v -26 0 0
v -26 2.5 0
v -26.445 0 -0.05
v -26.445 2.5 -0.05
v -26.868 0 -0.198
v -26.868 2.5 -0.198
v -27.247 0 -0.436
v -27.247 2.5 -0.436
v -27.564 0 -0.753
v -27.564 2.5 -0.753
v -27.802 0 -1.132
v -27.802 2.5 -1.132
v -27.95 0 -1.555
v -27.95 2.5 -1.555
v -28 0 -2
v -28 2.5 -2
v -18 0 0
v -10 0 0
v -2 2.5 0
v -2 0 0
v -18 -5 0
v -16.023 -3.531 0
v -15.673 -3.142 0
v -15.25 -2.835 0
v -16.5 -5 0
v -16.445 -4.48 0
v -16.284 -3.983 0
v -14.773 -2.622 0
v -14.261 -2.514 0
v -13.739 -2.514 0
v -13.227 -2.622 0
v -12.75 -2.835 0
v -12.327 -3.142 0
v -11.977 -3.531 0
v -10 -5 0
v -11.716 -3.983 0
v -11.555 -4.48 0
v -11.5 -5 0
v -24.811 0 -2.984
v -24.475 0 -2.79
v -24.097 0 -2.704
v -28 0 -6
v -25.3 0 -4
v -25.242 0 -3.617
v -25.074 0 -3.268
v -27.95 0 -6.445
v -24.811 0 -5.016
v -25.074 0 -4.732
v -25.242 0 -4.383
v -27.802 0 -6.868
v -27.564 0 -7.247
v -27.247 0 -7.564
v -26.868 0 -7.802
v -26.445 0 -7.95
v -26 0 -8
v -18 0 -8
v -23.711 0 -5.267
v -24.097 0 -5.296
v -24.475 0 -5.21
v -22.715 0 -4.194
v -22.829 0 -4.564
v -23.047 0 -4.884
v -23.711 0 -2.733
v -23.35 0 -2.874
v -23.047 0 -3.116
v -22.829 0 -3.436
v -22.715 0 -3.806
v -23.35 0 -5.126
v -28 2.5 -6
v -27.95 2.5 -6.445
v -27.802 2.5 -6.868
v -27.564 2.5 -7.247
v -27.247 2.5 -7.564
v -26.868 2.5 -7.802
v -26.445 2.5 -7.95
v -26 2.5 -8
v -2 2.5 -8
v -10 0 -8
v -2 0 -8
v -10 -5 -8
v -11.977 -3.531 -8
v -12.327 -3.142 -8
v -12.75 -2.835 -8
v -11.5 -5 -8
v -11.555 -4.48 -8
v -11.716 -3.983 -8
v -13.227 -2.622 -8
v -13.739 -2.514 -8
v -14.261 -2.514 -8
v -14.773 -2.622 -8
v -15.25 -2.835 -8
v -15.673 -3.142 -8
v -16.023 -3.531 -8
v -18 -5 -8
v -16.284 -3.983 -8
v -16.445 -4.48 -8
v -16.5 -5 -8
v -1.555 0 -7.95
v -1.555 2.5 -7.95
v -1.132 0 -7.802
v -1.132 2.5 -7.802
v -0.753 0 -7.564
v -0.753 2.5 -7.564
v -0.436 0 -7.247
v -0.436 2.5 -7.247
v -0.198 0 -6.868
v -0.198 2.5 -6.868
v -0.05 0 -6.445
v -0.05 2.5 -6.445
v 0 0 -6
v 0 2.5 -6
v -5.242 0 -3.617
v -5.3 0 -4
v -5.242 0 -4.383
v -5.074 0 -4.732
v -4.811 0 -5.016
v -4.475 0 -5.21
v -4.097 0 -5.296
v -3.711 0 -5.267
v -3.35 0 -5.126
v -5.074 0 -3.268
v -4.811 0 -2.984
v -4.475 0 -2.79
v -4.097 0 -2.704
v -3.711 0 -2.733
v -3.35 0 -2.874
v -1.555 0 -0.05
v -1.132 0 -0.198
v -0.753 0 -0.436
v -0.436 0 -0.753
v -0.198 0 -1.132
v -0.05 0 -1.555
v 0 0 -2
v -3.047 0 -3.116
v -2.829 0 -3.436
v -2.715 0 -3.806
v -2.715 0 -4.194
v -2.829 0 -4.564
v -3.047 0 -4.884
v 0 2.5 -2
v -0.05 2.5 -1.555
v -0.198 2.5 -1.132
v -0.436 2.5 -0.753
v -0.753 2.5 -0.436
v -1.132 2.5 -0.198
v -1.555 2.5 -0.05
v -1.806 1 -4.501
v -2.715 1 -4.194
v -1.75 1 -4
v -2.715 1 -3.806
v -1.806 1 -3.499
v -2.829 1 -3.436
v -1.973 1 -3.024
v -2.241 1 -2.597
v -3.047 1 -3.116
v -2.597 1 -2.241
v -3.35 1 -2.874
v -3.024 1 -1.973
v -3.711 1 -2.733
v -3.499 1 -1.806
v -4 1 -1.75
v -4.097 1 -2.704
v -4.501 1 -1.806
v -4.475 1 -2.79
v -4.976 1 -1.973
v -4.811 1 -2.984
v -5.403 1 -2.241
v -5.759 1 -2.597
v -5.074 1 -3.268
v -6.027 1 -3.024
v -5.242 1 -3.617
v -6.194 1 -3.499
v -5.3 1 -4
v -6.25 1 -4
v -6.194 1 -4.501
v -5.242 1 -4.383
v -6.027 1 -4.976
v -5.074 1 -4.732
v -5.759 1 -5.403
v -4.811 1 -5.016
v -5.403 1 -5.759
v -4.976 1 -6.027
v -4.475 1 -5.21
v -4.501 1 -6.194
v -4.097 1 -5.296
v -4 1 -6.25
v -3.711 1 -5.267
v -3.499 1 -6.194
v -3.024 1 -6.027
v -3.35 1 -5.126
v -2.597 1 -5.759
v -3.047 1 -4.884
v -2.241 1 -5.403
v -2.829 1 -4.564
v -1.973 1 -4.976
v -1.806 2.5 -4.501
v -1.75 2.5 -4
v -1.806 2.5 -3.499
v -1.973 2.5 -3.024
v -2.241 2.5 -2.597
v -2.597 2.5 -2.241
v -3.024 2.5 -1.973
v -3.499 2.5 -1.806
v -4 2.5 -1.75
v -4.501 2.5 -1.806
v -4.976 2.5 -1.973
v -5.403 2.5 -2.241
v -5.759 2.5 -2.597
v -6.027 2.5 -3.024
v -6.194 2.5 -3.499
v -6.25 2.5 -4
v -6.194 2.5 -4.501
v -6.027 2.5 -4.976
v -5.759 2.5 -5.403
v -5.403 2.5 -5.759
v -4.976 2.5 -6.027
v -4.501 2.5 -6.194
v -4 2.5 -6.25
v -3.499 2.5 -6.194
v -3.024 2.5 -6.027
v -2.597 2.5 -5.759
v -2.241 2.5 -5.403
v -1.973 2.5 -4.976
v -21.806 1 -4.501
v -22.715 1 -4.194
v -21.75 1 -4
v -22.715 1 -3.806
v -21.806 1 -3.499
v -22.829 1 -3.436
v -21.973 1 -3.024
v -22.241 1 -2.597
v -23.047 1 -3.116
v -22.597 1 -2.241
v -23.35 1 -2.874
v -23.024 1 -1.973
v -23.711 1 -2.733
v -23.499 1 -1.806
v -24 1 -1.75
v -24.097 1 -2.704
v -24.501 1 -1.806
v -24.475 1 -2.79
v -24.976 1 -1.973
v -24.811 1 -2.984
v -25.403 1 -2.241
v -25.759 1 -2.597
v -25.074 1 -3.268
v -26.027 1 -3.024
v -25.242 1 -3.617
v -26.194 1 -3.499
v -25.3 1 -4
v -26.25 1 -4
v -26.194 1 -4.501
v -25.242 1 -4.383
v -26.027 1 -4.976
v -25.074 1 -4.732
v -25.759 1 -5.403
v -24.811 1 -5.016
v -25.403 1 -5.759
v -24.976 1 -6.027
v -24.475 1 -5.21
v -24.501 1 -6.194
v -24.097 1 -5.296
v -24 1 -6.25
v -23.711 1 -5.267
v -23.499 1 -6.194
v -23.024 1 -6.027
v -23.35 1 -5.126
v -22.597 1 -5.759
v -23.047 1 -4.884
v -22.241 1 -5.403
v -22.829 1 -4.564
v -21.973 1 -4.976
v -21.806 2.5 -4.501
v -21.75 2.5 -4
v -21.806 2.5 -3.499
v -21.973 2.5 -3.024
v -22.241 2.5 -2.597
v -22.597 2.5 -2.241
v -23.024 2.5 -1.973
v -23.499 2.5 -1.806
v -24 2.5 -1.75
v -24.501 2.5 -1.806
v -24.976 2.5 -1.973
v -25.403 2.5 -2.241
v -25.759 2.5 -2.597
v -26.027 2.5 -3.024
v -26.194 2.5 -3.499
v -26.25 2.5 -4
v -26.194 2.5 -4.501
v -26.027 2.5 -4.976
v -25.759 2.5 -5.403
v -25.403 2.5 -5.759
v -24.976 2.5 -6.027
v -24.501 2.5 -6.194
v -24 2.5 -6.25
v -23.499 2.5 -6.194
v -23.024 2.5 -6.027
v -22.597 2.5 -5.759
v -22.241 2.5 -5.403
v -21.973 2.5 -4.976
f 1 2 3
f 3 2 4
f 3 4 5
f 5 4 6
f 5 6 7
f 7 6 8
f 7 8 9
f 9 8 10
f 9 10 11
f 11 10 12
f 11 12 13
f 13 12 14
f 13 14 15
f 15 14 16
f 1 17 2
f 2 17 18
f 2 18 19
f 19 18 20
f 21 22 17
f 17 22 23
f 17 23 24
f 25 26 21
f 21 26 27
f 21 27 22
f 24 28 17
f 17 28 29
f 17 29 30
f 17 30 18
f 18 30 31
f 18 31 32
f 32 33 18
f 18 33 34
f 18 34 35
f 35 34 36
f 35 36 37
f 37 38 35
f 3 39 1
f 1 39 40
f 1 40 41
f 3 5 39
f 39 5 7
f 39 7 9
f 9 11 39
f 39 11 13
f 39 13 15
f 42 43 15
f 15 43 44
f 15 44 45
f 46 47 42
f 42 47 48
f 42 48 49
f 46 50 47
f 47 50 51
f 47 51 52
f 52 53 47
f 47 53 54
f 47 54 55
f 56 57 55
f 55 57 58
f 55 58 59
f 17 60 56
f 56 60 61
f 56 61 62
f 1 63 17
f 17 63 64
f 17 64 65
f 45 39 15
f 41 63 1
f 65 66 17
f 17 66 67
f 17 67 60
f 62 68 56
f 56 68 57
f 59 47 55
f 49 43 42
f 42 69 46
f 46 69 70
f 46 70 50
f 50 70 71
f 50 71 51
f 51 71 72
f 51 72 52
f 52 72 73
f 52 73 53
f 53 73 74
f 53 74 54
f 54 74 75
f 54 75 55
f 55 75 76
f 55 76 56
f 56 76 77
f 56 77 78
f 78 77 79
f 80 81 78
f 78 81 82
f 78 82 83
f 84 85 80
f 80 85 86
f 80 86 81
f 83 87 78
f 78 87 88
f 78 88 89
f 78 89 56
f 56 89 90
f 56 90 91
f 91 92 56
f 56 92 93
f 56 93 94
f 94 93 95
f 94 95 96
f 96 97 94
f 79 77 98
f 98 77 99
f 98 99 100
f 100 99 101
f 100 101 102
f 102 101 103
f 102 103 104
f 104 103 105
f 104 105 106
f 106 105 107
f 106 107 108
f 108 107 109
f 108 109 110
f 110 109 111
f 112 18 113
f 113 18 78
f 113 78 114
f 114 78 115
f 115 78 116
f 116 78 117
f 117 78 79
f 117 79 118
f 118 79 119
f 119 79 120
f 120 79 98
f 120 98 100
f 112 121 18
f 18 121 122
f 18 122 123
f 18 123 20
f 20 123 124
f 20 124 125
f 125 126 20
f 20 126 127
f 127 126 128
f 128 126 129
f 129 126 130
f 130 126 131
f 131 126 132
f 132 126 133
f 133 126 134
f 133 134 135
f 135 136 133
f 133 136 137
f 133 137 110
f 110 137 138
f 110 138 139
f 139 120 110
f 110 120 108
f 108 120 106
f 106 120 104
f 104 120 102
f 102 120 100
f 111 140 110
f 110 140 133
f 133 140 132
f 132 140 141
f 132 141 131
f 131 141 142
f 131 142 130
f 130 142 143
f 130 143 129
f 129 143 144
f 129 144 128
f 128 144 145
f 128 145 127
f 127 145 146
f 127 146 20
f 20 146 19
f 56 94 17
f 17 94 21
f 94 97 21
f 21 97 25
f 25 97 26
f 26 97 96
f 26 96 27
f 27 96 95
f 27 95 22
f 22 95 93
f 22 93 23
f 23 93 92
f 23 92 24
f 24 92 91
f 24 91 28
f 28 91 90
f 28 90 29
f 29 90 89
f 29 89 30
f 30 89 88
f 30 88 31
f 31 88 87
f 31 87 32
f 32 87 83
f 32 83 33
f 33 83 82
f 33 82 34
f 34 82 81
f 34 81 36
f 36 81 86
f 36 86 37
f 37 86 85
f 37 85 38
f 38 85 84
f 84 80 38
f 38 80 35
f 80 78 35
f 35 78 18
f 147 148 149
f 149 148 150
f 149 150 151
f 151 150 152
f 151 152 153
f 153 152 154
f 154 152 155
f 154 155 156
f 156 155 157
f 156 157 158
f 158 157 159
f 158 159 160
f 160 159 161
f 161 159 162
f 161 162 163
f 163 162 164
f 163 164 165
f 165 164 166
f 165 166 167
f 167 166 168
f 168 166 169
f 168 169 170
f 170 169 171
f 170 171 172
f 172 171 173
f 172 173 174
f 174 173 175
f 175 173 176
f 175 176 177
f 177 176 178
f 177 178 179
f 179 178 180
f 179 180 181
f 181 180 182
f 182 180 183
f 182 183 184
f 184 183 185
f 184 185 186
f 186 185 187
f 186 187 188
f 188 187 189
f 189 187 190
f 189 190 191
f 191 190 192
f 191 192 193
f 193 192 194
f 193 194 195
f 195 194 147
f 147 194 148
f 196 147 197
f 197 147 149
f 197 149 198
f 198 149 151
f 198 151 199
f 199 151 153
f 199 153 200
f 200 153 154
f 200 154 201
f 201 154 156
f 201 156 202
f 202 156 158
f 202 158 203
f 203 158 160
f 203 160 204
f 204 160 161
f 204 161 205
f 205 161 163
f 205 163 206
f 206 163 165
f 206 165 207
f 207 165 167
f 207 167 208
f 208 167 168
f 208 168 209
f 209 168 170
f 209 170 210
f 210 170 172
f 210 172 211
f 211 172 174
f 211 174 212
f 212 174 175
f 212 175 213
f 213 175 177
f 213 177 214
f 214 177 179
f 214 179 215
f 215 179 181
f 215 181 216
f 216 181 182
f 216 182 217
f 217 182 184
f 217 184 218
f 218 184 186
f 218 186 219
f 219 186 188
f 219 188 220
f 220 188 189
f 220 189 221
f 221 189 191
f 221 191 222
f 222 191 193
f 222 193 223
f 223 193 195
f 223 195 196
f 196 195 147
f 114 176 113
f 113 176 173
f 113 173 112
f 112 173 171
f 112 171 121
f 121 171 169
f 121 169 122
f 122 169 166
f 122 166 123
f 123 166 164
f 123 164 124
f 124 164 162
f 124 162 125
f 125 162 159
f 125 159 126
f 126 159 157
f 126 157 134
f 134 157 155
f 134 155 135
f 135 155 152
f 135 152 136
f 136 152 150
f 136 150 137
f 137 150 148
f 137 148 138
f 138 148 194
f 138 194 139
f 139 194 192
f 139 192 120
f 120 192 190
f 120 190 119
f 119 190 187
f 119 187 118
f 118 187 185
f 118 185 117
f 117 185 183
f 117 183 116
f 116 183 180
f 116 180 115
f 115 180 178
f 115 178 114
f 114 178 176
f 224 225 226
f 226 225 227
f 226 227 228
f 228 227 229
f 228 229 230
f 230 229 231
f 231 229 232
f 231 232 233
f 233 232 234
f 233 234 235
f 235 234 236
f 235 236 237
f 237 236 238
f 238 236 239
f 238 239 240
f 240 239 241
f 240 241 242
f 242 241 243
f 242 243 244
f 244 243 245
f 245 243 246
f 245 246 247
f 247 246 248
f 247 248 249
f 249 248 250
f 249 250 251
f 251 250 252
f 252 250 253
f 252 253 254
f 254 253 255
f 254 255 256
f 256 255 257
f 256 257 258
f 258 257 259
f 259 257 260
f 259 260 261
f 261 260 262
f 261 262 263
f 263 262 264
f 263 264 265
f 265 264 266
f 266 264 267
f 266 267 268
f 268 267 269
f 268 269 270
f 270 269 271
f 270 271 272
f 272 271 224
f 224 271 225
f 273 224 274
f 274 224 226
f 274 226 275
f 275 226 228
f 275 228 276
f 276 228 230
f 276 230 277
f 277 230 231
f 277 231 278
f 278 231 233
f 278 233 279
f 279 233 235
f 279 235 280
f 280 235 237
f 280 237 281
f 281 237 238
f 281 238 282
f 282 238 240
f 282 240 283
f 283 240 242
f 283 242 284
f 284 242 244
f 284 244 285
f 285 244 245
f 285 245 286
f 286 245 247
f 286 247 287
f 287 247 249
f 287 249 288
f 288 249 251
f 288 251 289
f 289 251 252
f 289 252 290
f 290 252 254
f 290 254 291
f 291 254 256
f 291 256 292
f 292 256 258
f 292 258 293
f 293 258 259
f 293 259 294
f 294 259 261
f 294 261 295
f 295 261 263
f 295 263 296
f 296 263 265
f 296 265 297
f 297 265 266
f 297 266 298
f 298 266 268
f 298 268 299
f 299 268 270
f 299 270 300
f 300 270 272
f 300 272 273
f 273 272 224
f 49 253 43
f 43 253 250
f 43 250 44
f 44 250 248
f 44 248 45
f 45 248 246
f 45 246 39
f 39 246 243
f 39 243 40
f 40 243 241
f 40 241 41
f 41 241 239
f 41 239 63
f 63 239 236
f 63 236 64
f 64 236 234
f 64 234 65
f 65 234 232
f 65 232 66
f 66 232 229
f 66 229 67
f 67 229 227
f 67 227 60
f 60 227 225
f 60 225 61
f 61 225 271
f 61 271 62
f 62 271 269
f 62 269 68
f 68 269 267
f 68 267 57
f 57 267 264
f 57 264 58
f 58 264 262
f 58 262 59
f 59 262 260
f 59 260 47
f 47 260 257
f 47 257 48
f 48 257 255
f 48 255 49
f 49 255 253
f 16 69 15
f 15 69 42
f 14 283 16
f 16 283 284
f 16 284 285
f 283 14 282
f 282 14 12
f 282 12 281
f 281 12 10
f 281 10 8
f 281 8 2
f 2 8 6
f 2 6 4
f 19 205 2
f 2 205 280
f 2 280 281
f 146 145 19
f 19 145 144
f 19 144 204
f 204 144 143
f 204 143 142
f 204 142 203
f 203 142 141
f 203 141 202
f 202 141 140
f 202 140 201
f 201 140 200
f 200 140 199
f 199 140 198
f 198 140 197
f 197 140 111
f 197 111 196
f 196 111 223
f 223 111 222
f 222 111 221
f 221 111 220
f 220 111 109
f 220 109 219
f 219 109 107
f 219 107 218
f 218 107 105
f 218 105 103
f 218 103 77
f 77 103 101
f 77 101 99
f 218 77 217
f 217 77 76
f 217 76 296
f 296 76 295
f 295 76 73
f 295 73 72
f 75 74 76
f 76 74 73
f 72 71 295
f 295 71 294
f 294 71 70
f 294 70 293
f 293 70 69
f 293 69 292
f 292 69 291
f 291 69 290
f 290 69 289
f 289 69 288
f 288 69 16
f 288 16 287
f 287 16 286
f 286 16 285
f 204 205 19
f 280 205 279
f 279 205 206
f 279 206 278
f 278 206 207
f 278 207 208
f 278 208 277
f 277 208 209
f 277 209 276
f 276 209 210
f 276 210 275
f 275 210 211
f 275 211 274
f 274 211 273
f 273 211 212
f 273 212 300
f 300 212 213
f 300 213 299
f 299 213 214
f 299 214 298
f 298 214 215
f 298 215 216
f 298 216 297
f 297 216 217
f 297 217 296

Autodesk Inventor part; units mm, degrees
ref_plane "YZ Plane" through (0, 0, 0) normal (1, 0, 0) x (0, 1, 0)
ref_plane "XZ Plane" through (0, 0, 0) normal (0, 1, 0) x (-1, 0, 0)
ref_plane "XY Plane" through (0, 0, 0) normal (0, 0, 1) x (1, 0, 0)
sketch "Szkic1" plane through (0, 0, 0) normal (0, 1, 0) x (-1, 0, 0)
  line L0 (28, 0) -> (0, 0)
  line L1 (0, 0) -> (0, -8)
  line L2 (0, -8) -> (28, -8)
  line L3 (28, -8) -> (28, 0)
  dimension "d0" = 8
  dimension "d4" = 28
extrude "Wyciągnięcie proste1" add sketch "Szkic1" along normal blind 2.5
sketch "Szkic2" plane through (0, 2.5, 0) normal (0, 1, 0) x (1, 0, 0)
  line L0 (-28, 0) -> (0, 0) projected
  line L1 (0, 8) -> (-28, 8) projected
  line L2 (-14, 0) -> (-14, 8)
  line L3 (-24, 4) -> (-4, 4)
  point P0 (-14, 4)
  dimension "d3" = 20
hole "Otwór1" at (-24, 2.5, -4) at (-4, 2.5, -4) direction (0, -1, 0) diameter 2.6 end through all counterbore diameter 4.5 counterbore depth 1.5
sketch "Szkic3" plane through (-28, 0, 0) normal (0, 0, 1) x (1, 0, 0)
  line L0 (14, 2.5) -> (14, 0)
  line L1 (0, 2.5) -> (28, 2.5) projected
  line L2 (0, 0) -> (28, 0) projected
  circle A0 centre (14, -5) radius 2.5
  line L3 (10, -5) -> (18, -5)
  line L4 (18, -5) -> (18, 0)
  line L5 (10, 0) -> (10, -5)
  line L6 (18, 0) -> (10, 0)
  point P0 (10, 3)
  point P1 (17.6174, 3)
  point P2 (16.5, -5)
  point P3 (11.5, -5)
  point P4 (14, 0)
  point P5 (18, 0)
  dimension "d12" = 5
  dimension "d13" = 8
  dimension "d17" = 5
extrude "Wyciągnięcie proste2" add sketch "Szkic3" against normal up to surface (8 mm away) contours L2 L4 L3 A0 L5
fillet "Zaokrąglenie1" radius 2 4 edges at (0, 1.25, 0) (0, 1.25, -8) (-28, 1.25, -8) (-28, 1.25, 0)
equation "\"d0\" = obudowa_led_mocowanie_grubosc"
equation "\"d4\" = holder_led_dlugosc"
equation "\"d1\" = holder_led_grubosc"
equation "\"d3\" = obudowa_led_mocowanie_rozstaw_otworow"
equation "\"d5\" = gniazdo_M2_D2"
equation "\"d7\" = gniazdo_M2_D1"
equation "\"d8\" = gniazdo_M2_glebokosc"
equation "\"d10\" = insert_glebokosc"
equation "\"d12\" = holder_led_uchwyt_D"
equation "\"d13\" = holder_led_uchwyt_szerokosc"
equation "\"d17\" = holder_led_uchwyt_wysokosc"
equation "\"gniazdo_M2_glebokosc\" = 1.5"
equation "\"gniazdo_M2_D1\" = 4.5"
equation "\"gniazdo_M2_D2\" = 2.6"
equation "\"insert_D\" = 2.9"
equation "\"insert_glebokosc\" = 7"
equation "\"podstawa_wys\" = 2"
equation "\"podstawa_otwory_montazowe_poz_x\" = 4"
equation "\"podstawa_otwory_montazowe_poz_y\" = 4"
equation "\"podstawa_zaokraglenie\" = 3"
equation "\"obudowa_wys\" = 45"
equation "\"obudowa_grubosc\" = 2"
equation "\"obudowa_kontrolki_a\" = 38"
equation "\"obudowa_otwory_montazowe_poz_x\" = 4"
equation "\"obudowa_otwory_montazowe_poz_y\" = 4"
equation "\"obudowa_otwory_montazowe_material_x\" = 8"
equation "\"obudowa_otwory_montazowe_material_y\" = 8"
equation "\"obudowa_zaokraglenie\" = 3"
equation "\"obudowa_otwory_io1_D\" = 12"
equation "\"obudowa_otwory_io1_wys\" = 25"
equation "\"obudowa_otwory_io1_poz\" = 55"
equation "\"obudowa_otwory_io2_D\" = 12"
equation "\"obudowa_otwory_io2_wys\" = 25"
equation "\"obudowa_otwory_io2_poz\" = 38"
equation "\"obudowa_otwory_pot_D\" = 7.2"
equation "\"obudowa_pot_poz_y\" = 15"
equation "\"obudowa_s_rozstaw_y\" = 16"
equation "\"obudowa_s_poz_x\" = 78"
equation "\"obudowa_s_poz_y\" = 15"
equation "\"obudowa_s_D\" = 6.2"
equation "\"input_a\" = 8.9"
equation "\"input_b\" = 14.4"
equation "\"input_wys\" = 10.9"
equation "\"obudowa_MTS_otwor_D\" = 6.2"
equation "\"pcb_rozstaw_x\" = 92"
equation "\"pcb_rozstaw_y\" = 58"
equation "\"pcb_grubosc_scianki\" = 6"
equation "\"pcb_wys_bloku\" = 35"
equation "\"pcb_poz_y\" = 29"
equation "\"obudowa_footswitch_D\" = 12.3"
equation "\"obudowa_footswitch_poz_x\" = 35"
equation "\"obudowa_footswitch_poz_y\" = 68"
equation "\"obudowa_led_indicator_D\" = 3.5"
equation "\"obudowa_led_indicator_poz_x\" = 55"
equation "\"obudowa_podkladka_otwory\" = 4"
equation "\"obudowa_uchwyt_poz_z\" = 3"
equation "\"obudowa_uchwyt_grubosc\" = 2"
equation "\"obudowa_uchwyt_szerokosc_wew\" = 17.5"
equation "\"obudowa_uchwyt_wysokosc_wew\" = 26.3"
equation "\"obudowa_uchwyt_kolnierz_wys\" = 55"
equation "\"obudowa_gniazdo_poz\" = 25"
equation "\"obudowa_podciecie_inout_wys\" = 6"
equation "\"obudowa_podciecie_logo_wys\" = 34"
equation "\"obudowa_podciecie_logo_szerokosc\" = 25"
equation "\"obudowa_pot_pozycjonowanie_szerokosc\" = 2.8"
equation "\"obudowa_pot_pozycjonowanie_wys\" = 13"
equation "\"obudowa_pot_pozycjonowanie_glebokosc\" = 1.4"
equation "\"obudowa_led_mocowanie_wys\" = 6"
equation "\"obudowa_led_mocowanie_grubosc\" = 8"
equation "\"obudowa_led_mocowanie_rozstaw_otworow\" = 20"
equation "\"holder_led_grubosc\" = 2.5"
equation "\"holder_led_dlugosc\" = 28"
equation "\"holder_led_uchwyt_D\" = 5"
equation "\"holder_led_uchwyt_wysokosc\" = 5"
equation "\"holder_led_uchwyt_szerokosc\" = 8"
equation "\"holder_gniazdo_b\" = 5"
equation "\"holder_gniazdo_grubosc\" = 2.5"
equation "\"holder_gniazdo_a\" = 28"
equation "\"podstawa_mocowanie_DC_a\" = 7"
equation "\"podstawa_mocowanie_DC_b\" = 8.9"
equation "\"podstawa_mocowanie_DC_wys\" = 6"
equation "\"holder_gniazdo_odleglosc_miedzy_ramionami\" = 9.2"
equation "\"holder_gniazdo_grubosc_ramion\" = 1.5"
equation "\"holder_gniazdo_wys\" = 8"
equation "\"holder_gniazdo_uchwyt_poz\" = 5"
properties part number "led_holder"
